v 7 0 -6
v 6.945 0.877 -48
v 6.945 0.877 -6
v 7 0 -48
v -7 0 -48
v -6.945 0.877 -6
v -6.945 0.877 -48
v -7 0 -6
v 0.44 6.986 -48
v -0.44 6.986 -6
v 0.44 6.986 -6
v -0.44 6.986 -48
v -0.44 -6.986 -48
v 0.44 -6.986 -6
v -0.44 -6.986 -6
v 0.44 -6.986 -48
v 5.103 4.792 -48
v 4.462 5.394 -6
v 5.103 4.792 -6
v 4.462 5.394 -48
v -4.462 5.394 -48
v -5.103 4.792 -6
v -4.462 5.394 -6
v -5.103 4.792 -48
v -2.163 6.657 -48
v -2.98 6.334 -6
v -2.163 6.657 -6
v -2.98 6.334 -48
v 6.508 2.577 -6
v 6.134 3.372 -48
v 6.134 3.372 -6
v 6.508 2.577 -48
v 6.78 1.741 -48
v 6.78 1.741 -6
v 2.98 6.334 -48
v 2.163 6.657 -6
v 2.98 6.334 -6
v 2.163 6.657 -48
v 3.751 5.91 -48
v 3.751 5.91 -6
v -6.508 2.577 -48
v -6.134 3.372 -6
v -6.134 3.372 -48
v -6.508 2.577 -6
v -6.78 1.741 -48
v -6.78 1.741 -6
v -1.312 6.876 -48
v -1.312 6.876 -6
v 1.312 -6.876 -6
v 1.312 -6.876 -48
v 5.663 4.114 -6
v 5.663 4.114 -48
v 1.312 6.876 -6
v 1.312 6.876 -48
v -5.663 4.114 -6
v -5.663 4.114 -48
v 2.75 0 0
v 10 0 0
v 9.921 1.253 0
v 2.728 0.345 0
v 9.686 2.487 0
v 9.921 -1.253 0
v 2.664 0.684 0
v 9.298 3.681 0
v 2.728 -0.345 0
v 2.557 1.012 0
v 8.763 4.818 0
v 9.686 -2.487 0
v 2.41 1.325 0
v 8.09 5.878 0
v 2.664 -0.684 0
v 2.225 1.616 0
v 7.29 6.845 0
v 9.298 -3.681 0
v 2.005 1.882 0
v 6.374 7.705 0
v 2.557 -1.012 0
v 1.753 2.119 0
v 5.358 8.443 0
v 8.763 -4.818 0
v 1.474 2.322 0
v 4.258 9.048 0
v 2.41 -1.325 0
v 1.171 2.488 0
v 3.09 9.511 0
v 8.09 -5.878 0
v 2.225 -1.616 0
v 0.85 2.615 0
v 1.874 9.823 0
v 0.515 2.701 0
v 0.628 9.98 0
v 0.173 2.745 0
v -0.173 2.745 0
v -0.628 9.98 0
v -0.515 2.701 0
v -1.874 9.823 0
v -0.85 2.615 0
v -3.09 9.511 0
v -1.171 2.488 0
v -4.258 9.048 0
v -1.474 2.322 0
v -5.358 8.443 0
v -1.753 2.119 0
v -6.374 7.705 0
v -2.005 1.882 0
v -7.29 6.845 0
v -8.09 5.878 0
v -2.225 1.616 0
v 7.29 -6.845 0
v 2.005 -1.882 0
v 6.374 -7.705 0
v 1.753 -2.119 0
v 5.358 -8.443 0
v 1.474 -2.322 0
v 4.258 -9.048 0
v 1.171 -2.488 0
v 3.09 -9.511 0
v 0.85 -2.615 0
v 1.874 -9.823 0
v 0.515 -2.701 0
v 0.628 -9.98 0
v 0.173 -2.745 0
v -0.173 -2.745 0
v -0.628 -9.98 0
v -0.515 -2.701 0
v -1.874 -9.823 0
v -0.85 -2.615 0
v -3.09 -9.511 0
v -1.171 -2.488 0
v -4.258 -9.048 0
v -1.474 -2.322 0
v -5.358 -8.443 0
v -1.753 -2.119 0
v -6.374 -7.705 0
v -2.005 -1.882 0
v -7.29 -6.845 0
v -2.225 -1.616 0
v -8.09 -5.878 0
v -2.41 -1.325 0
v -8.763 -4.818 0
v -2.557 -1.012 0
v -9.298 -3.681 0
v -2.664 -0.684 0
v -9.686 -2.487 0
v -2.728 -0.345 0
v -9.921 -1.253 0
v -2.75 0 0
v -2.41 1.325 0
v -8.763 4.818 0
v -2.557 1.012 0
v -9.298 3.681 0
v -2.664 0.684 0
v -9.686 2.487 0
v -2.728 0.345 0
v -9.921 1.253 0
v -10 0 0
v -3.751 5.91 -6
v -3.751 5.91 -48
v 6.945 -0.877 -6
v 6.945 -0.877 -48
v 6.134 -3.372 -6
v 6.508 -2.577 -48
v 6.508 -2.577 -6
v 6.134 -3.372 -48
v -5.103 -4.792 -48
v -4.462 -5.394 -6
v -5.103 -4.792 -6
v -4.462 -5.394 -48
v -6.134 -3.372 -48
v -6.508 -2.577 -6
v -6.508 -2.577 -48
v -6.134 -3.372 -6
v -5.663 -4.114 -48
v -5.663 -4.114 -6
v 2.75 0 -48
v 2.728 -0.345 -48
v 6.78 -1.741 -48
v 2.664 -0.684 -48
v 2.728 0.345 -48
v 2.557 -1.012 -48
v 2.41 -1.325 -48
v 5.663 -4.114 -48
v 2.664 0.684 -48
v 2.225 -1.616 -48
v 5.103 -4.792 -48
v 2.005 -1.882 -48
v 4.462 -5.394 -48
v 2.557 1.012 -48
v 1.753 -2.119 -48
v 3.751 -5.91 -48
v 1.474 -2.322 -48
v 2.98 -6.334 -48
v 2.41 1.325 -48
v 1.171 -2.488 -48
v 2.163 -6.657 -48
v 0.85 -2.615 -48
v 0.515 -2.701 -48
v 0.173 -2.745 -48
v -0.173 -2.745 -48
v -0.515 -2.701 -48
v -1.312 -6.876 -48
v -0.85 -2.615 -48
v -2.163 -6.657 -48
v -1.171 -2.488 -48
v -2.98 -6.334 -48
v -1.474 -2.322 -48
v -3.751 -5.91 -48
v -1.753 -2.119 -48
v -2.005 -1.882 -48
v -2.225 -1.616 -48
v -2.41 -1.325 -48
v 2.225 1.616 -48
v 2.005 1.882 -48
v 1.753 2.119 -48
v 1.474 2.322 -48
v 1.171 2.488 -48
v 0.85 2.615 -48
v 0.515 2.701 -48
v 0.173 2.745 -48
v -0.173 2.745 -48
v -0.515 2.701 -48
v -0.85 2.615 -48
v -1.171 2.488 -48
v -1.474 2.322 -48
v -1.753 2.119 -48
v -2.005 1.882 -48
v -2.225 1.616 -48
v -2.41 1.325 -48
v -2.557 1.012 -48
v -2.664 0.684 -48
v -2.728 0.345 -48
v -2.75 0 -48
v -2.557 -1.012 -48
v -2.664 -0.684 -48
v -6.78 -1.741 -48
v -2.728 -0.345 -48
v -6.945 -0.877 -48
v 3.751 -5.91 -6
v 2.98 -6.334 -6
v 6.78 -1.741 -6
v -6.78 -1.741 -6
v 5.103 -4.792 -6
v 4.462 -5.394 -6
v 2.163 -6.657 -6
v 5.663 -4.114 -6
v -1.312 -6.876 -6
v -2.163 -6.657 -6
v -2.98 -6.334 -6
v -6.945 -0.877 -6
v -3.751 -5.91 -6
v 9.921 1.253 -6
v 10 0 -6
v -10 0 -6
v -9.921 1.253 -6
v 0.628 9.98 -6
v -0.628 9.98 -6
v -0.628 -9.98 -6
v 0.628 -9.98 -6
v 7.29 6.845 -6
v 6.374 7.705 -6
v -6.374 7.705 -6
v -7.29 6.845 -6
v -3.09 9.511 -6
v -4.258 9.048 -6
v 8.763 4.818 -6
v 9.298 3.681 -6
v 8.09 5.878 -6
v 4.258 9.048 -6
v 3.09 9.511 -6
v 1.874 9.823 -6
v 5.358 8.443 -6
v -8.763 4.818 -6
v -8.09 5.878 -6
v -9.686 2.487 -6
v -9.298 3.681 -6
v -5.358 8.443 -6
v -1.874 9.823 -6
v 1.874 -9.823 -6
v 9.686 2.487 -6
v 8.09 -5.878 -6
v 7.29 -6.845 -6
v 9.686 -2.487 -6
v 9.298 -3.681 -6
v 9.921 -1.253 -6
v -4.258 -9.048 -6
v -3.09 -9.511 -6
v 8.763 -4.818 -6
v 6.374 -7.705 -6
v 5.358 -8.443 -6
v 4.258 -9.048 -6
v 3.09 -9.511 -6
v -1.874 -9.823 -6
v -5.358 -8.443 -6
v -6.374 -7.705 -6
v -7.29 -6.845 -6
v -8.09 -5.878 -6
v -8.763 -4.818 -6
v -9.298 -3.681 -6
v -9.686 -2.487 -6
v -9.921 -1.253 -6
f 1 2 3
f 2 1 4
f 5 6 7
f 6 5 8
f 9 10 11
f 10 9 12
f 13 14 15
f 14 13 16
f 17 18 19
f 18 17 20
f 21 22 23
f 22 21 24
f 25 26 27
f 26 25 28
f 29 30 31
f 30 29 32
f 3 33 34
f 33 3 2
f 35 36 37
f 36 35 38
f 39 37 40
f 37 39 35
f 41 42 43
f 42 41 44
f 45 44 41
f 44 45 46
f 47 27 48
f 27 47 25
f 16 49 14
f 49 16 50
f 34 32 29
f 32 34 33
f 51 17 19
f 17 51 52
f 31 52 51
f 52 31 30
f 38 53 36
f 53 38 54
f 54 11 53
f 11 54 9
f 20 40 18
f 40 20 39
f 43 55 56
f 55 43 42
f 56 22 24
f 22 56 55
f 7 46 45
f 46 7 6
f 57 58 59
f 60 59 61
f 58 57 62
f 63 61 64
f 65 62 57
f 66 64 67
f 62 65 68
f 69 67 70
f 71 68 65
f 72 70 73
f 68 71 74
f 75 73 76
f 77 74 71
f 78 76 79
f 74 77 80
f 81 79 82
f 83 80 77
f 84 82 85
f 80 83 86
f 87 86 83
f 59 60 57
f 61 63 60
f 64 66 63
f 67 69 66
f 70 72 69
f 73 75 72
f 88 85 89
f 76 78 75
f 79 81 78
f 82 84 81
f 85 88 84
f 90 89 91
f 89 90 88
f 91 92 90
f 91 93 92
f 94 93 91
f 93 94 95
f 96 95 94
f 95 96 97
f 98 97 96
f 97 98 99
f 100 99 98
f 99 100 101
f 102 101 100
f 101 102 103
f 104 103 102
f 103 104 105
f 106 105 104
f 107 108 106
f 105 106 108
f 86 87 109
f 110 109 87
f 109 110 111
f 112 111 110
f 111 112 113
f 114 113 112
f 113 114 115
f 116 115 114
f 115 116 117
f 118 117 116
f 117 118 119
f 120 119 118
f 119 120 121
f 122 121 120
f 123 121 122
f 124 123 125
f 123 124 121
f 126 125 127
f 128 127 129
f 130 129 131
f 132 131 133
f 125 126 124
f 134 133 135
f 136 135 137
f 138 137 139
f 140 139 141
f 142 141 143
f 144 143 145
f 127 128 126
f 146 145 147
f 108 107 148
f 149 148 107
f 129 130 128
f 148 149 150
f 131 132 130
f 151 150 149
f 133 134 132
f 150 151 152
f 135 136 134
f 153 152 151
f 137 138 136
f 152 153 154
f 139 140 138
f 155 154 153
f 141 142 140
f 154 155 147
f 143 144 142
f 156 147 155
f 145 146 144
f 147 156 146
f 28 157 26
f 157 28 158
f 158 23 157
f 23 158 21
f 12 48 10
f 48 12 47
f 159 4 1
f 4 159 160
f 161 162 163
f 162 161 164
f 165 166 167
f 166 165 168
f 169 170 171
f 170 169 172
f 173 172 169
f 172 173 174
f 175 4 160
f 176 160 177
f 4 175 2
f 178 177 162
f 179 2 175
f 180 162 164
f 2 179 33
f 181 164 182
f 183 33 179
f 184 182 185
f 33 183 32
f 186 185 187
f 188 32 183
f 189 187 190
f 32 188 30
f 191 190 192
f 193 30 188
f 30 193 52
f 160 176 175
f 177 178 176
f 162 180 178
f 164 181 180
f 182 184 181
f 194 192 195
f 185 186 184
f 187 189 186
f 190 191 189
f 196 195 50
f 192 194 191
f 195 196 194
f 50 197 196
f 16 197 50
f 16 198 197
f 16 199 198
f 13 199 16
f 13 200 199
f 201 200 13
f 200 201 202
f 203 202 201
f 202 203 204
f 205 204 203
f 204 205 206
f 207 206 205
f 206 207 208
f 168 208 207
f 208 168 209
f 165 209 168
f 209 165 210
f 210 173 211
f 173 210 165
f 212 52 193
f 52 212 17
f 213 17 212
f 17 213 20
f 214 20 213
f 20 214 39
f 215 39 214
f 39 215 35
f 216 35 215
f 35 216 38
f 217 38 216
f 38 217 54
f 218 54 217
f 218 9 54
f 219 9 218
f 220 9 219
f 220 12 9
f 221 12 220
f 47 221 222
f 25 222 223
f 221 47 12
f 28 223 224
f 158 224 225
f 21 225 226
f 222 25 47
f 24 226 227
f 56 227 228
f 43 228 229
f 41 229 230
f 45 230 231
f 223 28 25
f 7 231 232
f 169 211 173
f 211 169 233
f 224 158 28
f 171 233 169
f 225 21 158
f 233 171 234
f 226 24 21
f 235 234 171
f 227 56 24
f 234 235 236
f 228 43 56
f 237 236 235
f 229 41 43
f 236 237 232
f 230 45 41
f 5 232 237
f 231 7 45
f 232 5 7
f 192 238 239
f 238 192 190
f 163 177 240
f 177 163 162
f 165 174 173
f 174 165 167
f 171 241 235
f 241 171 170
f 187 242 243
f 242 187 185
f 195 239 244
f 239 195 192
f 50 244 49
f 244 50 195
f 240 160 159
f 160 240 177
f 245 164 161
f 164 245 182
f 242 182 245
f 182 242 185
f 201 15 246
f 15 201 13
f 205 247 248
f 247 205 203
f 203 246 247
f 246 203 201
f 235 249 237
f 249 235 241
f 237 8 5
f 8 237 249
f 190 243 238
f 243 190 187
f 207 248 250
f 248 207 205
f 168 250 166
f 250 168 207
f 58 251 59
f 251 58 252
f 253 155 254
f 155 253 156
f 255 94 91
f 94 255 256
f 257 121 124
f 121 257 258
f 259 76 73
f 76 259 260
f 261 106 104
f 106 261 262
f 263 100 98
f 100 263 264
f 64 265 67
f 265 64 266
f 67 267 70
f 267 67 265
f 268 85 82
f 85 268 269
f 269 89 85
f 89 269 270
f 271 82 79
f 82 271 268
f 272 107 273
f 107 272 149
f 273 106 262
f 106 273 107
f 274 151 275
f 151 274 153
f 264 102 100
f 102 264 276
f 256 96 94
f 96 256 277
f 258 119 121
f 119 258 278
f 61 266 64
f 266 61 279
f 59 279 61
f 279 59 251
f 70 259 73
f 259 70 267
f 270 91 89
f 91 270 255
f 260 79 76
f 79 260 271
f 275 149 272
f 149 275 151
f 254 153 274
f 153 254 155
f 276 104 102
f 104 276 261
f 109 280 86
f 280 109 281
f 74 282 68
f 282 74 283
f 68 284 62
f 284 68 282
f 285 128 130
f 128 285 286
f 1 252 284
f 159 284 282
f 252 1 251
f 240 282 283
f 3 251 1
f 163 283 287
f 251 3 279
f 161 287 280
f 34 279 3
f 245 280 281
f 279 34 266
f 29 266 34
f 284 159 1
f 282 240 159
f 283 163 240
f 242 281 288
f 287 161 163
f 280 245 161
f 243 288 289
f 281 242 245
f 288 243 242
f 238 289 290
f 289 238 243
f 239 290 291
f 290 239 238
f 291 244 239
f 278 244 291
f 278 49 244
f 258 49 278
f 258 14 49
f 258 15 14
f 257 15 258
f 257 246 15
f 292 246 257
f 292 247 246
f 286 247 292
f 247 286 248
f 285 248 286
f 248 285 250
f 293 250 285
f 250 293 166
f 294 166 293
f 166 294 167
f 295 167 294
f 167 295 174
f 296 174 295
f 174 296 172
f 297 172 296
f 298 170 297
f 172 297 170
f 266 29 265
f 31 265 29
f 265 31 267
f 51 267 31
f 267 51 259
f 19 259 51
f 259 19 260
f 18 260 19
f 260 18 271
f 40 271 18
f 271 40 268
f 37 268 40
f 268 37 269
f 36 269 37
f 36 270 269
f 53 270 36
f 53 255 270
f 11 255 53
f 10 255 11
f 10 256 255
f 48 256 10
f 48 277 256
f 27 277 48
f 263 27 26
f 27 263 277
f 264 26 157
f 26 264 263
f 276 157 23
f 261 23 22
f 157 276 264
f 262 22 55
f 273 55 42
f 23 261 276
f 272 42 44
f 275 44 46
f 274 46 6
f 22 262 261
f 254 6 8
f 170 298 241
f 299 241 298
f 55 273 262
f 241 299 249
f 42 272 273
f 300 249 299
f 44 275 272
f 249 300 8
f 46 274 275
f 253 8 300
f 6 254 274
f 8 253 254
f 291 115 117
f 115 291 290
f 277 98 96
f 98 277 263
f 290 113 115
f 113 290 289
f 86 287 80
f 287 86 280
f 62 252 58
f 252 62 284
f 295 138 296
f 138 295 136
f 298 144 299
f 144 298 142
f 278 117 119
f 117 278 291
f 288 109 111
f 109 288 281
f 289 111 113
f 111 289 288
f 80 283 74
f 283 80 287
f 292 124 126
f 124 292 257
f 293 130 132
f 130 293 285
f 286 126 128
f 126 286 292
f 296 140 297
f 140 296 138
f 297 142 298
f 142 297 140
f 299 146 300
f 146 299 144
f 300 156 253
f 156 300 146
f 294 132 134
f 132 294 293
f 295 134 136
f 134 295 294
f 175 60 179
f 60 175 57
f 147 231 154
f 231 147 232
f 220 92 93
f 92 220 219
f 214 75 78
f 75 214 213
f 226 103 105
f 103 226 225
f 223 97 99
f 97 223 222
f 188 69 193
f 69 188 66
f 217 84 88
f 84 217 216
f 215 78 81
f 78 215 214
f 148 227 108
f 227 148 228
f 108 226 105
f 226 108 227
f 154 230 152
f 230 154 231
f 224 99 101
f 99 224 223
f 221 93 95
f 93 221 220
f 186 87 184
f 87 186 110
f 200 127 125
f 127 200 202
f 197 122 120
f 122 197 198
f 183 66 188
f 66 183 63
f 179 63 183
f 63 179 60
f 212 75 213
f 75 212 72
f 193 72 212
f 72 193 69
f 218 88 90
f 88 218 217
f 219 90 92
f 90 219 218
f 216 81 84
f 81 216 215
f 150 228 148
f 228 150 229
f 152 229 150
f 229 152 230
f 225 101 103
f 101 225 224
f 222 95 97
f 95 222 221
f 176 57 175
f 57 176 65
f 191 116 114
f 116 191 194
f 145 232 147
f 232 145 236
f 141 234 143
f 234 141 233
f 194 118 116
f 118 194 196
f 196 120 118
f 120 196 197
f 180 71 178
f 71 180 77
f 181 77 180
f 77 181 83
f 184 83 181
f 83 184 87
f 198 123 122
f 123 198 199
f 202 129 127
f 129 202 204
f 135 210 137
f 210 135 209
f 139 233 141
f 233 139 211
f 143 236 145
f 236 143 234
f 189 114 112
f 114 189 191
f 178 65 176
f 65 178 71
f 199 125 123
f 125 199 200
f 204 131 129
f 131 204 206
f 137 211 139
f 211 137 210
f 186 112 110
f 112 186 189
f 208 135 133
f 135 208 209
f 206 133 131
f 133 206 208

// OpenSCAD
$fn = 50;


difference() {
	union() {
		translate(v = [0, 0, -48.0000000000]) {
			cylinder(h = 48, r = 7.0000000000);
		}
		translate(v = [0, 0, -6.0000000000]) {
			cylinder(h = 6, r = 10.0000000000);
		}
	}
	union() {
		#translate(v = [0, 0, -48]) {
			cylinder(h = 48, r = 2.7500000000);
		}
	}
}
